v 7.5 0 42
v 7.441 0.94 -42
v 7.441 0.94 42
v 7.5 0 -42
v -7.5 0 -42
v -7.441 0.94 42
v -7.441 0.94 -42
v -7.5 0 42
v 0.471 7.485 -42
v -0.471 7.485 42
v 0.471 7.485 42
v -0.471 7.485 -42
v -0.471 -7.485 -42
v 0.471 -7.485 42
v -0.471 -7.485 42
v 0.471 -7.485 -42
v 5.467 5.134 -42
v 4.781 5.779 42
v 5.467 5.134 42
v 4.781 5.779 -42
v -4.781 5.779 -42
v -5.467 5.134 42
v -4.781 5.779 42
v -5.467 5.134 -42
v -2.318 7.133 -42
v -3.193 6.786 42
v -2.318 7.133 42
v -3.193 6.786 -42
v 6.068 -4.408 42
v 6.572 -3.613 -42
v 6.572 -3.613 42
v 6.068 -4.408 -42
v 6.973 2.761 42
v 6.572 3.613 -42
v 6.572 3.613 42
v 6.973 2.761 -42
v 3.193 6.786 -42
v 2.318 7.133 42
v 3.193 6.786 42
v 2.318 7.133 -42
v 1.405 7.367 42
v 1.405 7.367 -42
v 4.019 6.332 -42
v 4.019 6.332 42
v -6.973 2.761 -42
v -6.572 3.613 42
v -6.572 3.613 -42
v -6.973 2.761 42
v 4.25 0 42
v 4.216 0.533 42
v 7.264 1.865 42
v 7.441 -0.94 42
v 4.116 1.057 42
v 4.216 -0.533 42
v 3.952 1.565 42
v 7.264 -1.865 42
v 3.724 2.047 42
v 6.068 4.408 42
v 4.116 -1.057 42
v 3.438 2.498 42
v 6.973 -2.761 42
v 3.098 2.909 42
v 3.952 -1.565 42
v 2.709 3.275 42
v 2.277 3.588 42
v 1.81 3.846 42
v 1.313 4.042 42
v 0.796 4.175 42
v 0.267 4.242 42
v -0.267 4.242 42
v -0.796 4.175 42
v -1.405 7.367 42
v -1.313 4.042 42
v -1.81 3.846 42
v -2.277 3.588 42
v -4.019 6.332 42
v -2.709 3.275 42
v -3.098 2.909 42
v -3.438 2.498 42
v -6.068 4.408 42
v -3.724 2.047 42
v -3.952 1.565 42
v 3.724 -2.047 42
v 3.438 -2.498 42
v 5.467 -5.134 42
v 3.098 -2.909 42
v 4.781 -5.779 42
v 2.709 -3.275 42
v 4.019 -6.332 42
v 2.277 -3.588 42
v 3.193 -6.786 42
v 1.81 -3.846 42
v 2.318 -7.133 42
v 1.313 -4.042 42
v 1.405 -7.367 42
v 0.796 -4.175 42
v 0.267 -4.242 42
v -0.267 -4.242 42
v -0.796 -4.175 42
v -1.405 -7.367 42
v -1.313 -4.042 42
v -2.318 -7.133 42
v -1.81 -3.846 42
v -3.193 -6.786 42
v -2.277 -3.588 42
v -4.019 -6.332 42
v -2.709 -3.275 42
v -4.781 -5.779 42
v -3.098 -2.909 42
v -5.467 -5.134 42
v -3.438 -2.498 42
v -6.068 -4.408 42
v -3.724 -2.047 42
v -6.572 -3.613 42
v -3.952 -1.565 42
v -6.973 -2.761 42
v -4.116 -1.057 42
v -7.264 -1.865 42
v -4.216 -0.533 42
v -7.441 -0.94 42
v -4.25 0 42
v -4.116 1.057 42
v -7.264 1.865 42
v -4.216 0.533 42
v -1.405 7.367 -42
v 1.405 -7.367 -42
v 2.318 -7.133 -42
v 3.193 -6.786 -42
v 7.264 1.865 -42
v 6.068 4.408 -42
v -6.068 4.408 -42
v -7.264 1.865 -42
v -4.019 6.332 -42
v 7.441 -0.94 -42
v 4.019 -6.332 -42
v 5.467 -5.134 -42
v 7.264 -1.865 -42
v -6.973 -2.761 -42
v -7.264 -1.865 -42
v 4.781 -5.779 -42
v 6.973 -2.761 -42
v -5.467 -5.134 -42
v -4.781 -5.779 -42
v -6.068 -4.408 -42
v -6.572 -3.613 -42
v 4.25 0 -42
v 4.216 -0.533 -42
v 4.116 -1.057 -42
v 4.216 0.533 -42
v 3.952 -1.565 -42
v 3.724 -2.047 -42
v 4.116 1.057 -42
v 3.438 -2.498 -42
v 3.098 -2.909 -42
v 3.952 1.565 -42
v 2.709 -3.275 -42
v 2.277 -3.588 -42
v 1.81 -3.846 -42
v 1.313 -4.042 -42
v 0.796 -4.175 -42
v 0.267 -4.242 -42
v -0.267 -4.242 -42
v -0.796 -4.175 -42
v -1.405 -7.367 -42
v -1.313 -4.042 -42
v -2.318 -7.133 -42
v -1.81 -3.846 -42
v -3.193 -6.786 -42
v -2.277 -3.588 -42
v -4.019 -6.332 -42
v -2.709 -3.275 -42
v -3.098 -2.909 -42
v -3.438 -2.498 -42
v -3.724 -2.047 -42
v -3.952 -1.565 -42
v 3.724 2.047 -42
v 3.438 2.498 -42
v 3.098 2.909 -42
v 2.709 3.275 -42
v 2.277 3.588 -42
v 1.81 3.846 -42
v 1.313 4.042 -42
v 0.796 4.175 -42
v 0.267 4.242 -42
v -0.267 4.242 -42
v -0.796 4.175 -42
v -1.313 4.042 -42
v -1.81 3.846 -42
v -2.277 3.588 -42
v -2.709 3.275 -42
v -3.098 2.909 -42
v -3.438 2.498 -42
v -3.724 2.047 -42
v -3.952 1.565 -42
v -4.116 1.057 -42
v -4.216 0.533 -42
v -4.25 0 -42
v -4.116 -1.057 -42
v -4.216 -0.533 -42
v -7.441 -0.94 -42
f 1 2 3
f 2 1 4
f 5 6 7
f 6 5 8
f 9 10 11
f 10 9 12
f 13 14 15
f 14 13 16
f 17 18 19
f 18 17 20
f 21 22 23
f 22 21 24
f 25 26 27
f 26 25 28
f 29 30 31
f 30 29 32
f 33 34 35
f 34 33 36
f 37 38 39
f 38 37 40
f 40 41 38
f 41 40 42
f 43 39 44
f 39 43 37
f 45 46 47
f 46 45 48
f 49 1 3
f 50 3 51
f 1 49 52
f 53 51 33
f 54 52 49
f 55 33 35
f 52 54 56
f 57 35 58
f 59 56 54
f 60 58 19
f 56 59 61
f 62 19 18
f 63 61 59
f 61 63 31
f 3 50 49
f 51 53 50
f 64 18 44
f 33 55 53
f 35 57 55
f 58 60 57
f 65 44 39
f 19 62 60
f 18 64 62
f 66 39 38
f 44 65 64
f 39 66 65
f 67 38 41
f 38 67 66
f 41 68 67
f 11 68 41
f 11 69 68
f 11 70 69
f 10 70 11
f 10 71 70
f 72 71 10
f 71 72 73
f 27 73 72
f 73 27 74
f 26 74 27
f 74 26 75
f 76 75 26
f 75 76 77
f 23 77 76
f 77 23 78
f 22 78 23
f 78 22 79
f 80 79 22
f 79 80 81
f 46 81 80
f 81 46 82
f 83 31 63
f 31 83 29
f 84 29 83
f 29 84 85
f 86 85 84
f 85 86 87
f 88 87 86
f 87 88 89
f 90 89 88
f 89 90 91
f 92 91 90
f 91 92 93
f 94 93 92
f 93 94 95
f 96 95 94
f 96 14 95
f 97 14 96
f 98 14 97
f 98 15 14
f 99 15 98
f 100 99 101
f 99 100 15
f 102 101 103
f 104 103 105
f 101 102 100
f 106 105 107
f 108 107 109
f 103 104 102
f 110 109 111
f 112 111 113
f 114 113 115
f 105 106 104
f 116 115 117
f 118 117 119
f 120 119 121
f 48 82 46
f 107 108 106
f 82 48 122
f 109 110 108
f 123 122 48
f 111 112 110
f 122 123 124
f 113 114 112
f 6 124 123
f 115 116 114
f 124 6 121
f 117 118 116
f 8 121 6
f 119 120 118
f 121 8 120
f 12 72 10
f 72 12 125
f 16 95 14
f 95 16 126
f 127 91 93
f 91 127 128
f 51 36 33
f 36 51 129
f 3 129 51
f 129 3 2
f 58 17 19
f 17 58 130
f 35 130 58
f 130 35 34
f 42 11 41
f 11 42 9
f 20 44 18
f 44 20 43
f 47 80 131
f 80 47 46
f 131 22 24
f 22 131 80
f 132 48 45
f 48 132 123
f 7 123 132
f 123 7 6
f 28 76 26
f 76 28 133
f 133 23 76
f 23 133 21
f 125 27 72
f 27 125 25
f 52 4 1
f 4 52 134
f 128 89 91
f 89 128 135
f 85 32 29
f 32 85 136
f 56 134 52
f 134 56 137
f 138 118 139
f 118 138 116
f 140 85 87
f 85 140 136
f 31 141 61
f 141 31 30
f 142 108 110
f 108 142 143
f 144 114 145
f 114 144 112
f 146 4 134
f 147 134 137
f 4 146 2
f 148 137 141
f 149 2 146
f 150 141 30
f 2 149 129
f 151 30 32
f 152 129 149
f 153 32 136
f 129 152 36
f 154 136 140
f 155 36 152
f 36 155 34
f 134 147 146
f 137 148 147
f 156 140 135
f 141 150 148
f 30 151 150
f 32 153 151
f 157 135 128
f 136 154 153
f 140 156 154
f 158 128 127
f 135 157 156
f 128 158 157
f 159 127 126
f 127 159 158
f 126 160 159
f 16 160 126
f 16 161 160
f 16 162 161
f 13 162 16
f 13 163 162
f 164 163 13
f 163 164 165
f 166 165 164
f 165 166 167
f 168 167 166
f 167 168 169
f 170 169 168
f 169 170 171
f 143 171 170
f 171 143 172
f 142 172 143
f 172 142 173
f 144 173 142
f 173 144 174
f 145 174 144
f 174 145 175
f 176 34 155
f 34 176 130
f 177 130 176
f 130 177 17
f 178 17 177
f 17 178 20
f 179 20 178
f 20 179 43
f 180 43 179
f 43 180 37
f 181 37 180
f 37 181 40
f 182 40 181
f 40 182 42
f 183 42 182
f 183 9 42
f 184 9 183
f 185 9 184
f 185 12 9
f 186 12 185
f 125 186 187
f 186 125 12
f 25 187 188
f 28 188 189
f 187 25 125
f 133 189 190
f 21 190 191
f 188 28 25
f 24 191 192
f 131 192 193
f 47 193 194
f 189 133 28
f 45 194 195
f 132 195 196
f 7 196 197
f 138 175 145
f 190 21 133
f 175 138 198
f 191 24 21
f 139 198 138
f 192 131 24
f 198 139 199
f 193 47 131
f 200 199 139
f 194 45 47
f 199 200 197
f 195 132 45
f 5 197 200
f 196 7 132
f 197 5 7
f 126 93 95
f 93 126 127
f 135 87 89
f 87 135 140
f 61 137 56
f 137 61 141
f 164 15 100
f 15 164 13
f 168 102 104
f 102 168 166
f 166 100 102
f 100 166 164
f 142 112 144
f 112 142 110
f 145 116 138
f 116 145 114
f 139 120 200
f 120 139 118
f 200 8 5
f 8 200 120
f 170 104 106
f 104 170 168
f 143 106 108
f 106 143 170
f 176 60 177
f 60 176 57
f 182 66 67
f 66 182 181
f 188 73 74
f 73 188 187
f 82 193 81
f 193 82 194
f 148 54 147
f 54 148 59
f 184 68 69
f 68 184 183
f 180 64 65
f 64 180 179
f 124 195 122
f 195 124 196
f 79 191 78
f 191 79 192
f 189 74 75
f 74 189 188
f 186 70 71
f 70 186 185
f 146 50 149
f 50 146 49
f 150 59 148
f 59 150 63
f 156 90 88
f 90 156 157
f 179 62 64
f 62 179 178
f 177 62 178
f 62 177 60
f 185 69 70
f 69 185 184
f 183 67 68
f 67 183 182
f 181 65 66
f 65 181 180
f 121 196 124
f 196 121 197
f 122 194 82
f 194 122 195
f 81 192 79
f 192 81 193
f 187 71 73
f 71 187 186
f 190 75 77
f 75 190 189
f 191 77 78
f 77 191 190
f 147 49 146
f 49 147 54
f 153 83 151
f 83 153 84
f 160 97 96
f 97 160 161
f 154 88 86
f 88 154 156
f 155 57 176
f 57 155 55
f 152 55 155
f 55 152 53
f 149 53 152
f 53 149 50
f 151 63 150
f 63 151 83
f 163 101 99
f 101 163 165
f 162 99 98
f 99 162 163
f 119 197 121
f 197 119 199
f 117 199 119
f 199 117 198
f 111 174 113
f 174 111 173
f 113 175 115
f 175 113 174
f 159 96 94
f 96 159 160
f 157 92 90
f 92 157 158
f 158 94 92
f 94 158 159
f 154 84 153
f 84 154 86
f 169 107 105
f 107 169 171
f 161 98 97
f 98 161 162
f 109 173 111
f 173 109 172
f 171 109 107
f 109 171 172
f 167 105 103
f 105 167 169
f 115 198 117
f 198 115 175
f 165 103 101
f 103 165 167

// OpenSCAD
$fn = 50;


difference() {
	union() {
		translate(v = [0, 0, -42.0000000000]) {
			cylinder(h = 84, r = 7.5000000000);
		}
	}
	union() {
		translate(v = [0, 0, -100.0000000000]) {
			cylinder(h = 200, r = 4.2500000000);
		}
	}
}
